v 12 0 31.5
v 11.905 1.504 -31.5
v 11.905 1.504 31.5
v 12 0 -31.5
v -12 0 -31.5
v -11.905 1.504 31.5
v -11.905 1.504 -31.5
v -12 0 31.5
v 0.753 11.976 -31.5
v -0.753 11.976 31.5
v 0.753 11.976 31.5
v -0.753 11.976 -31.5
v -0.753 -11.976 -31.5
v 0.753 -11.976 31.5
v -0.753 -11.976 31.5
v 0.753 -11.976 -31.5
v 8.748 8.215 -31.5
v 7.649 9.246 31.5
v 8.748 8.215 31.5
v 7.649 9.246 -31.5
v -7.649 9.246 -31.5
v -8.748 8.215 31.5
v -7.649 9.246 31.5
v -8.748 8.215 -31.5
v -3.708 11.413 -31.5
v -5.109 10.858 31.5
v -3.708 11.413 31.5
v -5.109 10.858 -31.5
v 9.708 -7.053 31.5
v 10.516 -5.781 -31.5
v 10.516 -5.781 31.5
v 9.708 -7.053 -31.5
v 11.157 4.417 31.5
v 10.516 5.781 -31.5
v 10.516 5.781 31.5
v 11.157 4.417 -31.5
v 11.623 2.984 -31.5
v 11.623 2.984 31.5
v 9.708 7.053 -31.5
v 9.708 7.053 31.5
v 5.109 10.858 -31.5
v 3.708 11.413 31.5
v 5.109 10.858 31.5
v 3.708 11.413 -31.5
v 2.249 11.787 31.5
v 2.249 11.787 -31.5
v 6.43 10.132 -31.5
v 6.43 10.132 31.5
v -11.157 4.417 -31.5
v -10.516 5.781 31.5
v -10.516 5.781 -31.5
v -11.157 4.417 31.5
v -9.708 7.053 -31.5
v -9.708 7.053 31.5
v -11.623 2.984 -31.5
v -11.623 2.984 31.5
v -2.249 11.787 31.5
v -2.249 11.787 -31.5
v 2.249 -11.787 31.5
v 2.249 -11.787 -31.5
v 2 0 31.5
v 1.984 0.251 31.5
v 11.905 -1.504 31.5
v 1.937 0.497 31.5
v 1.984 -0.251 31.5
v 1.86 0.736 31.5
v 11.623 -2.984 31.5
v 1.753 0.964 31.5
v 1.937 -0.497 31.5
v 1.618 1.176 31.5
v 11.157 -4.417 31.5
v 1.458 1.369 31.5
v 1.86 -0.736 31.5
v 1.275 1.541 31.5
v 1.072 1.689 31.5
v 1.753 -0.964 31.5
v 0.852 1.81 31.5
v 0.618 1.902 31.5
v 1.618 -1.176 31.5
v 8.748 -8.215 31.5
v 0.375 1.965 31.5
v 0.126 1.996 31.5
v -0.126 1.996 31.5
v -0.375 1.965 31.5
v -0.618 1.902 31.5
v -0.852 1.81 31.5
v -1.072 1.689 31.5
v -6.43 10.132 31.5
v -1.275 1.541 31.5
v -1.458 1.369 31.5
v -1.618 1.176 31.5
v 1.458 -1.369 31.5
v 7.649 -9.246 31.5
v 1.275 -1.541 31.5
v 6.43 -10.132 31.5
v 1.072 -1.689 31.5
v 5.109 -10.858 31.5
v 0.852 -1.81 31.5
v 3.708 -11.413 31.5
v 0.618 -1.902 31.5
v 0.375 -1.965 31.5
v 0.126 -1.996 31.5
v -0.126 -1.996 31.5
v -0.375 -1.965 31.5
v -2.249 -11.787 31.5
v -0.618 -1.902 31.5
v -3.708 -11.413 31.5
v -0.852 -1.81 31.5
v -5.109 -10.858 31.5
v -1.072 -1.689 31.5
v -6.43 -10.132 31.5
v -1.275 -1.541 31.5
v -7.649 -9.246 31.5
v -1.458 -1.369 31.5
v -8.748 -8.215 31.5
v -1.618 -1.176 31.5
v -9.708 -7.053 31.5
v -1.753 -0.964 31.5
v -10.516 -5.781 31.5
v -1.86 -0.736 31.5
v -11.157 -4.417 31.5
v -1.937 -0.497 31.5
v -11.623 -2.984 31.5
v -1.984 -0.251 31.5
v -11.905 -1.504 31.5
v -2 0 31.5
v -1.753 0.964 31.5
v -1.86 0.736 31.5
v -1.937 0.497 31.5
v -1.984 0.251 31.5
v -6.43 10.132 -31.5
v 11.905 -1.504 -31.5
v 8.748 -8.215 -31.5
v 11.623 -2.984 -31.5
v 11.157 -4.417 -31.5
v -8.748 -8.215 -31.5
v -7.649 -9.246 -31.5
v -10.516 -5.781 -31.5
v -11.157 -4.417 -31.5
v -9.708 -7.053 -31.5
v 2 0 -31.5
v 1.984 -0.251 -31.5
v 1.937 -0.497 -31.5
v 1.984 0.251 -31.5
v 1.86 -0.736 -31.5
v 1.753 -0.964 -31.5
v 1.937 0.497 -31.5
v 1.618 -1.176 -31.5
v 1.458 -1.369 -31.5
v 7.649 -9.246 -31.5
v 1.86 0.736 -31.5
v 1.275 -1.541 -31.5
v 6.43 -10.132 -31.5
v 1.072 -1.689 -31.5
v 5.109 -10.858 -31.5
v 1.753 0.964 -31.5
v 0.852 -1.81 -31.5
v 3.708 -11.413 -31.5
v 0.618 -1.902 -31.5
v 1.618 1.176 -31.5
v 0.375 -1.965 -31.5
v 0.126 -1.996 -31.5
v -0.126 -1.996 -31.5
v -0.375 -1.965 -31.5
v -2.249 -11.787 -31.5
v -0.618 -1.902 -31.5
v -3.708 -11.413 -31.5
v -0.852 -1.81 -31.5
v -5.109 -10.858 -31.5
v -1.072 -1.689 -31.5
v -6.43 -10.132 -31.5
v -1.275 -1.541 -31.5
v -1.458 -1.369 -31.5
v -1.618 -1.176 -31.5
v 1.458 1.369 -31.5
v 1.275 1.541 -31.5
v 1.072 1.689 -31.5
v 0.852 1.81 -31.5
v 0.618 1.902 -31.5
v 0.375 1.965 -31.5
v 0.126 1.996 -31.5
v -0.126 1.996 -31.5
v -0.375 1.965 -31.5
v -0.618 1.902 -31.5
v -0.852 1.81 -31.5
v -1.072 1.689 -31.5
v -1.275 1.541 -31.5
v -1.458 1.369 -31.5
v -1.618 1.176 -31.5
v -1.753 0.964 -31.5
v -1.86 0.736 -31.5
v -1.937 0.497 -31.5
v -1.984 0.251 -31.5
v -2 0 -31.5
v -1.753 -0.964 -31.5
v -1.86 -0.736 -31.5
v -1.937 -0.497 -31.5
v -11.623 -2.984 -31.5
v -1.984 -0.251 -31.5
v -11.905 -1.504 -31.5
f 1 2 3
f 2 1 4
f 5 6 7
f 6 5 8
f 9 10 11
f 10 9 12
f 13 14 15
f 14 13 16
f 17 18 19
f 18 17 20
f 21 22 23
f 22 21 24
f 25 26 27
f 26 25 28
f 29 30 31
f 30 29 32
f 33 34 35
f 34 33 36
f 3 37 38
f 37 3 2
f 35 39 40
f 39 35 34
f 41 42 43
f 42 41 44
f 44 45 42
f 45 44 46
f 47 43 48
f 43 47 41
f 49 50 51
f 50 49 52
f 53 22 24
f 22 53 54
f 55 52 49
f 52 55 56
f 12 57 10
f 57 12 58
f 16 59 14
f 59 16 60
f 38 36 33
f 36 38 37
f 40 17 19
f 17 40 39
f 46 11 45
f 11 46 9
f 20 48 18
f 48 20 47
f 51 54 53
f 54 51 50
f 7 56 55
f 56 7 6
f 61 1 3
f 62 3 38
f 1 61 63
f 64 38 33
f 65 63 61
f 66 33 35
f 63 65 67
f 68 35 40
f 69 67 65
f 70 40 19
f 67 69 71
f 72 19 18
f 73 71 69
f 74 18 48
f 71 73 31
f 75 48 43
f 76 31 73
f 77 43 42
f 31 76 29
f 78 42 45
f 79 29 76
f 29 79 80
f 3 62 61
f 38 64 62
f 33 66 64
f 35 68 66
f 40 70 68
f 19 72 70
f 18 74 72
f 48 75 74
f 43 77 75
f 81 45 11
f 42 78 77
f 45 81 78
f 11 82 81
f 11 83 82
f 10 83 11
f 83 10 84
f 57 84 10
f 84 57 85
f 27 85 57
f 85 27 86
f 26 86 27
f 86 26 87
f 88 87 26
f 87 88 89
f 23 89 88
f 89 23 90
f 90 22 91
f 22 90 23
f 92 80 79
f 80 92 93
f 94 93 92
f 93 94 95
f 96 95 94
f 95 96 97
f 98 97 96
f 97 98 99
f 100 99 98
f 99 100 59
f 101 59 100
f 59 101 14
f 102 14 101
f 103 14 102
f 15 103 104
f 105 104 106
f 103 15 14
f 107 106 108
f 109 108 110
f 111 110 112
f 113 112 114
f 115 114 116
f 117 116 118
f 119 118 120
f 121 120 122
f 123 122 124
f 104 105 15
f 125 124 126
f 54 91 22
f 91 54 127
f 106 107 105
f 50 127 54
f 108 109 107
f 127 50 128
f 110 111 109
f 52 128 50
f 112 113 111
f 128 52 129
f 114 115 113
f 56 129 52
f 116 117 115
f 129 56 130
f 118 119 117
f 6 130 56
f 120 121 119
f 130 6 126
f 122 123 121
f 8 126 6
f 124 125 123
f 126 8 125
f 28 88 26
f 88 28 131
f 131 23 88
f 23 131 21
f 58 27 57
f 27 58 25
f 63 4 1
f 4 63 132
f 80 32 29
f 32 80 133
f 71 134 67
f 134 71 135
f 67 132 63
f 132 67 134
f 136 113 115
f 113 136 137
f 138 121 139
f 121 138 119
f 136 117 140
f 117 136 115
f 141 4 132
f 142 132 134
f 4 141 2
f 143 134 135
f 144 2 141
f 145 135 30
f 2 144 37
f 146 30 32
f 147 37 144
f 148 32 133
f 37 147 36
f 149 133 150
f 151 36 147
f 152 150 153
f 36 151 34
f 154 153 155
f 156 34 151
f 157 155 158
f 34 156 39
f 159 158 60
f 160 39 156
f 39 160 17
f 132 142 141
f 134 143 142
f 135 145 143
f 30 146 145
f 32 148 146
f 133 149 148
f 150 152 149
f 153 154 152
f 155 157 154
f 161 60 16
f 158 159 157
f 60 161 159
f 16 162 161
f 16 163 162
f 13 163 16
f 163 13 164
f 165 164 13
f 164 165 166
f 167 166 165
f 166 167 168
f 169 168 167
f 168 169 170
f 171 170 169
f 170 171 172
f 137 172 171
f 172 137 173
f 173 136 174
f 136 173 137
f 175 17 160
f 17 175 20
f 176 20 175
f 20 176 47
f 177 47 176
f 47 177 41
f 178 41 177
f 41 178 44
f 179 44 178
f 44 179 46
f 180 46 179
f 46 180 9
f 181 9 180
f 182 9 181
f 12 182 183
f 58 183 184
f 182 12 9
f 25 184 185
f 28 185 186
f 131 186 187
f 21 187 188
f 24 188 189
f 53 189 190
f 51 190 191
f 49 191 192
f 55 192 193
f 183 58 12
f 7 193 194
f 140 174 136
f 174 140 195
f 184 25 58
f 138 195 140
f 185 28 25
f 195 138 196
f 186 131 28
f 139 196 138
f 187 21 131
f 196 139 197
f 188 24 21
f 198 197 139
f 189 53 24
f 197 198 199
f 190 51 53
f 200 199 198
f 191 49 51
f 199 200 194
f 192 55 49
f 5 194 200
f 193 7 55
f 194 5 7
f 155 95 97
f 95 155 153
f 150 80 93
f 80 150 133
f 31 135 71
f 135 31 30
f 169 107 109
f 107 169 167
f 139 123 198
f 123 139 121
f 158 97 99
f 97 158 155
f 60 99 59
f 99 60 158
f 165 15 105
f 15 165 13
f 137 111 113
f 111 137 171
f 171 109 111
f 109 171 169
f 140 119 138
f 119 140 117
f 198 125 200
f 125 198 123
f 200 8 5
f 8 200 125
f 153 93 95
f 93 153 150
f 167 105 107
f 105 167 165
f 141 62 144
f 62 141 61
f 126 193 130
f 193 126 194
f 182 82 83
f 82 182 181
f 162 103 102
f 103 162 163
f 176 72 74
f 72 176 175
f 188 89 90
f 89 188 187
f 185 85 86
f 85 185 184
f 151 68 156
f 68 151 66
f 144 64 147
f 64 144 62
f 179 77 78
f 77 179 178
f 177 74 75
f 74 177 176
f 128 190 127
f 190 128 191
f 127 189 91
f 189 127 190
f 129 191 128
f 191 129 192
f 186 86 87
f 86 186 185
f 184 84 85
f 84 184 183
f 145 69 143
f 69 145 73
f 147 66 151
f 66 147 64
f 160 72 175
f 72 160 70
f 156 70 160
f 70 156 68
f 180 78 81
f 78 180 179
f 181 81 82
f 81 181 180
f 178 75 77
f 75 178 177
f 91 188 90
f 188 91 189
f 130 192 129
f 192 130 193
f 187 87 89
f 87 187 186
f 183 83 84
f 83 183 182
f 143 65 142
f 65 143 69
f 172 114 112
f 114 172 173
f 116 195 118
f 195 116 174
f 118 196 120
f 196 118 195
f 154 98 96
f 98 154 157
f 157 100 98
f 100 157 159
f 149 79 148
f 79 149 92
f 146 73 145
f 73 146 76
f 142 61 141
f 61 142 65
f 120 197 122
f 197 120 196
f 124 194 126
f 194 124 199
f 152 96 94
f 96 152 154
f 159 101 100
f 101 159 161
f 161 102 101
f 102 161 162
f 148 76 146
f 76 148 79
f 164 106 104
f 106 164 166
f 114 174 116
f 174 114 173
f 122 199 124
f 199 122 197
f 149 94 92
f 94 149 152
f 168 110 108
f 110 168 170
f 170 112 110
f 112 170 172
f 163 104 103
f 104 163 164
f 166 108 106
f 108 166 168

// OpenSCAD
$fn = 50;


difference() {
	union() {
		translate(v = [0, 0, -31.5000000000]) {
			cylinder(h = 63, r = 12.0000000000);
		}
	}
	union() {
		translate(v = [0, 0, -100.0000000000]) {
			cylinder(h = 200, r = 2.0000000000);
		}
	}
}
